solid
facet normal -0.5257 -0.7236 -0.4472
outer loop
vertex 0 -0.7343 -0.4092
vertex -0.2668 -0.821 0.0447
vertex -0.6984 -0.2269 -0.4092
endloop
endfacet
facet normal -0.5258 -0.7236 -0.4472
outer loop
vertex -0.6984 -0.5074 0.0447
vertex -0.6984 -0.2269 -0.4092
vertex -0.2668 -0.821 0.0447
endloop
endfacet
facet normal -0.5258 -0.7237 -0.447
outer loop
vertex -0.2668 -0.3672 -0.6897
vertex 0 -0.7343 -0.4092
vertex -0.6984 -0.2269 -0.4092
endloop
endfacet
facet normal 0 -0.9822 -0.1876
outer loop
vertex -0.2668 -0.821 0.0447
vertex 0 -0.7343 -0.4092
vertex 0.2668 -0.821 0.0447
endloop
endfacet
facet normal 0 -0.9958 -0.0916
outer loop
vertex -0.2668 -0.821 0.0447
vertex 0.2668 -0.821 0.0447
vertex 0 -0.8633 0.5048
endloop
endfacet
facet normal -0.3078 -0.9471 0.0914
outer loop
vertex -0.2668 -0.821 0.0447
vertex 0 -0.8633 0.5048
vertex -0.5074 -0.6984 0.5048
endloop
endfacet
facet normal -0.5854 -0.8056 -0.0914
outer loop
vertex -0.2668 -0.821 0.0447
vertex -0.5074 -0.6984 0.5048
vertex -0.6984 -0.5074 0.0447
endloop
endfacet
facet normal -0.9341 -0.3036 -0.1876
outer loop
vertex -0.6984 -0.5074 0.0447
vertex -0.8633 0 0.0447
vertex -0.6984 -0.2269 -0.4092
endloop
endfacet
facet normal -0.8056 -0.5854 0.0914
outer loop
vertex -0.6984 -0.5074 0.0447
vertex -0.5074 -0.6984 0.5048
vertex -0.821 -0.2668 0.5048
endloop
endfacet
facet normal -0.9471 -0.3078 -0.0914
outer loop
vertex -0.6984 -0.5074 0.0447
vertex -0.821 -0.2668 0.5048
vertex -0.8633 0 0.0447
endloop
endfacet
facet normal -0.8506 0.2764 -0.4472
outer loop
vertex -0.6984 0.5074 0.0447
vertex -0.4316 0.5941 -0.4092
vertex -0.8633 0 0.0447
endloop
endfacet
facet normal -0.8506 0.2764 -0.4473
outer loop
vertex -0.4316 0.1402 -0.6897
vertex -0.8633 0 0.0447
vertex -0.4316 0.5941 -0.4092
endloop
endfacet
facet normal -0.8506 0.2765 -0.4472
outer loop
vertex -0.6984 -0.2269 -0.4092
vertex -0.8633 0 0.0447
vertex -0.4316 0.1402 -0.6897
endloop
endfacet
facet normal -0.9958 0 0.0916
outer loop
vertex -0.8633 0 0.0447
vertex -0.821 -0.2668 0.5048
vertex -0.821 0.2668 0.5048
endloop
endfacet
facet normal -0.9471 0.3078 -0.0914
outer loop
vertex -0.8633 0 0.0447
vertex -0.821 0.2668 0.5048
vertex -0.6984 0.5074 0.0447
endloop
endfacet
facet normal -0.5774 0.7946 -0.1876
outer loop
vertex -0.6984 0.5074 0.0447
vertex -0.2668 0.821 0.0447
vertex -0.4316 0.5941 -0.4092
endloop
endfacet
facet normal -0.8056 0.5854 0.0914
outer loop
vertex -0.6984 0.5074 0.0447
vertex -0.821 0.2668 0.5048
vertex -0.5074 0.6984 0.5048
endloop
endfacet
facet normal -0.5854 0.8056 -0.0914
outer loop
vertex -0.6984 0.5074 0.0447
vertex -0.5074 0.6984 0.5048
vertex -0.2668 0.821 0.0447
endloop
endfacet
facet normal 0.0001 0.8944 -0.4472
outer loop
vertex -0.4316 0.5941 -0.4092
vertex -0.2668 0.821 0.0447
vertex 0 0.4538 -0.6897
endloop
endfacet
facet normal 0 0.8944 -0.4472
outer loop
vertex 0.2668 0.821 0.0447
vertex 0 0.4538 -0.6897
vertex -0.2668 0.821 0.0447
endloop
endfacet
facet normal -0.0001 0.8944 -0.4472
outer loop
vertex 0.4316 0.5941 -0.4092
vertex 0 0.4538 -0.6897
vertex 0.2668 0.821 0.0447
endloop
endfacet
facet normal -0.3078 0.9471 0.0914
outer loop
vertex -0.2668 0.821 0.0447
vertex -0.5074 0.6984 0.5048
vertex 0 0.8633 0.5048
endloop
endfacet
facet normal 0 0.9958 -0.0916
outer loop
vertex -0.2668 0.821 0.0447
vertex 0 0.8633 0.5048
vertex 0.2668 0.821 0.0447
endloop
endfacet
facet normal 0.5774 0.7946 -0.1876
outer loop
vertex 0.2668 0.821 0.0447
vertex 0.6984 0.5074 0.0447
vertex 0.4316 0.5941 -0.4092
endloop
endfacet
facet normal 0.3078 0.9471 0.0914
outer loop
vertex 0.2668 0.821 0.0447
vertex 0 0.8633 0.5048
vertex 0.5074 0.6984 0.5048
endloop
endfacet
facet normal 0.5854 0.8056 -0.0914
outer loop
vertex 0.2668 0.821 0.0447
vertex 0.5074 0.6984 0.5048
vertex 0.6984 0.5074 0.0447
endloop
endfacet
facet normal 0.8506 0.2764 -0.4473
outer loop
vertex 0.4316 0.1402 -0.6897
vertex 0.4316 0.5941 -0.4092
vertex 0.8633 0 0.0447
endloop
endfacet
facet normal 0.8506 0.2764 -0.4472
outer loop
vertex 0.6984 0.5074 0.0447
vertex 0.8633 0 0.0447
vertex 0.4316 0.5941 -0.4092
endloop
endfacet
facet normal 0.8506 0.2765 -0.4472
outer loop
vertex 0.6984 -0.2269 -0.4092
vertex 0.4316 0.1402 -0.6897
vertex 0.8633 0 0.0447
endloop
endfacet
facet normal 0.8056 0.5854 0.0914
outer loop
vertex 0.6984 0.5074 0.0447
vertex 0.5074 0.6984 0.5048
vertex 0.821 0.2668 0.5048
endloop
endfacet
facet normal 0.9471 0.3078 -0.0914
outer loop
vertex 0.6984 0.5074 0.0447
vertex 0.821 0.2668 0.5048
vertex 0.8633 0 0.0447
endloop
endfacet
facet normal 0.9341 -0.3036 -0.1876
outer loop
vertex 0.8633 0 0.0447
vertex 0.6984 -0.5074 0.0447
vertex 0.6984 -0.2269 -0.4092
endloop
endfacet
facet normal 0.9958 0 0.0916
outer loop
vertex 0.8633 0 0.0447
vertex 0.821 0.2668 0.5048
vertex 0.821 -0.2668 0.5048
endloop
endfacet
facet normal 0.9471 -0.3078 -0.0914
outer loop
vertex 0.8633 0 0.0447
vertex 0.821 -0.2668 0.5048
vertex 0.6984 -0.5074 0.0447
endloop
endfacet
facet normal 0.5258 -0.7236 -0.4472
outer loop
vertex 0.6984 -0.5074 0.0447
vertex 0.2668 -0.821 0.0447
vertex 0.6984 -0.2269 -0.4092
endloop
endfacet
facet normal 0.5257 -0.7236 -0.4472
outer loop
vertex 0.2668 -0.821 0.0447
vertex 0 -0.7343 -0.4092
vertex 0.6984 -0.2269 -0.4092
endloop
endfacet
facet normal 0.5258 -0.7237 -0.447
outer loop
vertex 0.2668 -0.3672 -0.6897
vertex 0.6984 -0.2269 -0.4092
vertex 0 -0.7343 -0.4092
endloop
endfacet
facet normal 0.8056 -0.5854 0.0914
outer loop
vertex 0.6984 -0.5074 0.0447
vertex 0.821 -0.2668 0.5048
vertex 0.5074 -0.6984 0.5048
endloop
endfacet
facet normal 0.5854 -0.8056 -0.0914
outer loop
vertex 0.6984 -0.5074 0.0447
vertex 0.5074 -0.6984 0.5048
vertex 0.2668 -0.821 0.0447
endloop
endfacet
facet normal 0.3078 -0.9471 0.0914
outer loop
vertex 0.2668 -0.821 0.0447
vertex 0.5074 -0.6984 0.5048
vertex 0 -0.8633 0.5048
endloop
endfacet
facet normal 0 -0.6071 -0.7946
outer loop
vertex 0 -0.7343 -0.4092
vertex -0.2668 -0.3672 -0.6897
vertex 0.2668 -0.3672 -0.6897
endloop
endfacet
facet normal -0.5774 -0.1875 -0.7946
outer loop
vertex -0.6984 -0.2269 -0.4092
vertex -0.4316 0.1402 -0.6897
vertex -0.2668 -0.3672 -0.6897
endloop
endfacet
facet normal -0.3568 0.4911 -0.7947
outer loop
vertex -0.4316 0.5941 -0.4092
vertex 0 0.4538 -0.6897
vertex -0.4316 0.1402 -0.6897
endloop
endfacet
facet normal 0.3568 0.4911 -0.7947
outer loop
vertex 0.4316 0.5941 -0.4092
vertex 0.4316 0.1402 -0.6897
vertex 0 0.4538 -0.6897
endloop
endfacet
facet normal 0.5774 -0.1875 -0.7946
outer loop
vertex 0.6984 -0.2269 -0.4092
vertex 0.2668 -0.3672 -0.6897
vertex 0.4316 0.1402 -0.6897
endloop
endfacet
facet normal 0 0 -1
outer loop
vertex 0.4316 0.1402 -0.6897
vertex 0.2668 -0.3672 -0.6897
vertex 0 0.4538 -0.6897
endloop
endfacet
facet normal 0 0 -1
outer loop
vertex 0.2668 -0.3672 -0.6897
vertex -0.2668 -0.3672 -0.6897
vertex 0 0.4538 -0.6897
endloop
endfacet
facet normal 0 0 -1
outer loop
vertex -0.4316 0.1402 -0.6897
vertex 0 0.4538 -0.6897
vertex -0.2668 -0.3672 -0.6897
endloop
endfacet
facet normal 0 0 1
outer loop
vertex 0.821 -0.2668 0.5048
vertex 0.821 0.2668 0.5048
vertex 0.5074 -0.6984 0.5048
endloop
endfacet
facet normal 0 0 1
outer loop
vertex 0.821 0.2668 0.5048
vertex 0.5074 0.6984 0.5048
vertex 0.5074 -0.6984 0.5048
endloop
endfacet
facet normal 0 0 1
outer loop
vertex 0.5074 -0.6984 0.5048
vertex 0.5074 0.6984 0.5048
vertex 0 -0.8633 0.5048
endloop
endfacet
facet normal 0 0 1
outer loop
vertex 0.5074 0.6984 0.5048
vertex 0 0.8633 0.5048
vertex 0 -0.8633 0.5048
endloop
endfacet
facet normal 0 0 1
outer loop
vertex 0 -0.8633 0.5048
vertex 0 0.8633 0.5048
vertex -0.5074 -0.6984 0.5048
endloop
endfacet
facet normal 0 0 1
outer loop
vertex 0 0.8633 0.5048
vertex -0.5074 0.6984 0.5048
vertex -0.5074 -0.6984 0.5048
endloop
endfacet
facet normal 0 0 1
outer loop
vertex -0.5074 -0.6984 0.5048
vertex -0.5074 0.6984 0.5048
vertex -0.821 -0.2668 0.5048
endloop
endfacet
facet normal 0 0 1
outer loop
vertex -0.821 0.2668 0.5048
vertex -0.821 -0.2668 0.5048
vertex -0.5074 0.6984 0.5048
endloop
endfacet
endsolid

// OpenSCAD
polyhedron( points = [[-0.26676074403719, -0.821005151812756, 0.0446591916802084], [-0.698388695536099, -0.50740908872559, 0.0446591916802084], [-0.863255902790343, 4.6314350829368e-11, 0.0446591916802084], [-0.698388696262553, 0.507409088803412, 0.0446591916802084], [-0.266760745212617, 0.821005151851819, 0.0446591916802084], [0.266760743561977, 0.821005151851824, 0.0446591916802084], [0.698388695089043, 0.507409088803412, 0.0446591916802084], [0.86325590238885, 4.6314350829368e-11, 0.0446591916802084], [0.698388695906628, -0.507409088725588, 0.0446591916802084], [0.266760744884847, -0.821005151812756, 0.0446591916802084], [4.37657951368284e-10, -0.734329331501629, -0.409181294101111], [-0.698388695523021, -0.226920242871682, -0.409181293874029], [-0.431627950875266, 0.594084908500848, -0.409181294122536], [0.431627951851987, 0.594084908407076, -0.409181294122536], [0.698388696229504, -0.226920243131331, -0.409181294122536], [-0.266760744080525, -0.367164665607074, -0.689670139582303], [-0.431627950885704, 0.140244422693825, -0.689670139818263], [4.68471437991892e-10, 0.453840485551748, -0.689670139818263], [0.431627951760952, 0.14024442260891, -0.689670139818263], [0.266760744827139, -0.36716466544566, -0.689670139497164], [-0.507409088197419, -0.698388695982076, 0.504766525221093], [4.37657951368284e-10, -0.863255902972535, 0.504766525221093], [0.507409088715364, -0.698388695785042, 0.504766525279655], [0.821005151646989, -0.266760744554524, 0.504766525209621], [0.821005150689996, 0.266760744501149, 0.504766525243104], [0.507409087887739, 0.698388696302485, 0.504766525179297], [-8.71290620426578e-10, 0.863255902778982, 0.504766525217946], [-0.507409089374049, 0.69838869628602, 0.504766525158425], [-0.821005151505421, 0.266760744474687, 0.50476652520063], [-0.821005151633306, -0.266760744580581, 0.50476652514406]], faces = [[0, 1, 11, 15, 10], [0, 10, 9], [0, 9, 21], [0, 21, 20], [0, 20, 1], [1, 2, 11], [1, 20, 29], [1, 29, 2], [2, 3, 12, 16, 11], [2, 29, 28], [2, 28, 3], [3, 4, 12], [3, 28, 27], [3, 27, 4], [4, 5, 13, 17, 12], [4, 27, 26], [4, 26, 5], [5, 6, 13], [5, 26, 25], [5, 25, 6], [6, 7, 14, 18, 13], [6, 25, 24], [6, 24, 7], [7, 8, 14], [7, 24, 23], [7, 23, 8], [8, 9, 10, 19, 14], [8, 23, 22], [8, 22, 9], [9, 22, 21], [10, 15, 19], [11, 16, 15], [12, 17, 16], [13, 18, 17], [14, 19, 18], [15, 16, 17, 18, 19], [20, 21, 22, 23, 24, 25, 26, 27, 28, 29]]);
